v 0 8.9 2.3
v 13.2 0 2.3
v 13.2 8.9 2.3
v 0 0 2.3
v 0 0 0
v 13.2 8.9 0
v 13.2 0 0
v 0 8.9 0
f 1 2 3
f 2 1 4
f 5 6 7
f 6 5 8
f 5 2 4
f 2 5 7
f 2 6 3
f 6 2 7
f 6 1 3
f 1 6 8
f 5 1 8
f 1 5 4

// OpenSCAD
/* Warning, this is a very basic generator with a lot of approximation 
input data : [FCCSP, D6, 13.20x8.90x2.30mm, 208, , A, C04-25522A]
generated by com.zoubworld.electronics.cad.model3d.Basic
Date : Sun Feb 15 10:50:49 CET 2026
*/

//body
color("black")
translate([0,0,0])
cube([13.2,8.9,2.3], center=false);
